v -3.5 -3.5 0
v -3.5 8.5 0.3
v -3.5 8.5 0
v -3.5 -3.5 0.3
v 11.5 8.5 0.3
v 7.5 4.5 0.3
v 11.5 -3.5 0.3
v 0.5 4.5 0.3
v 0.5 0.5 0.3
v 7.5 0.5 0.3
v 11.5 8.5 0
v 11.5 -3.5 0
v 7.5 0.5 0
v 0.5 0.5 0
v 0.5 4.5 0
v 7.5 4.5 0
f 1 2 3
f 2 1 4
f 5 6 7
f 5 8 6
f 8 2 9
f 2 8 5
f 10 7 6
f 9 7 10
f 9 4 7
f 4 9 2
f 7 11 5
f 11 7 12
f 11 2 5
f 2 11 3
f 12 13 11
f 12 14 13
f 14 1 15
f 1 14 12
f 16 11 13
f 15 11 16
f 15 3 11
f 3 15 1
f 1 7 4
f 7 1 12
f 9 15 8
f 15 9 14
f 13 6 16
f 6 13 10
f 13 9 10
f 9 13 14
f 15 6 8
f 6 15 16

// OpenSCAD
// keyTopParsepartou1

keyTopWidth = 8.0;
keyTopHeight = 5.0;
margin = 0.5;

brim = 3.5;
depth = 0.3;

difference() {
    translate([-brim, -brim, 0])
        cube([keyTopWidth + brim * 2, keyTopHeight + brim * 2, depth]);
    translate([margin, margin, -0.01])
        cube([keyTopWidth - margin * 2, keyTopHeight - margin * 2, depth+ 0.02]);
}
